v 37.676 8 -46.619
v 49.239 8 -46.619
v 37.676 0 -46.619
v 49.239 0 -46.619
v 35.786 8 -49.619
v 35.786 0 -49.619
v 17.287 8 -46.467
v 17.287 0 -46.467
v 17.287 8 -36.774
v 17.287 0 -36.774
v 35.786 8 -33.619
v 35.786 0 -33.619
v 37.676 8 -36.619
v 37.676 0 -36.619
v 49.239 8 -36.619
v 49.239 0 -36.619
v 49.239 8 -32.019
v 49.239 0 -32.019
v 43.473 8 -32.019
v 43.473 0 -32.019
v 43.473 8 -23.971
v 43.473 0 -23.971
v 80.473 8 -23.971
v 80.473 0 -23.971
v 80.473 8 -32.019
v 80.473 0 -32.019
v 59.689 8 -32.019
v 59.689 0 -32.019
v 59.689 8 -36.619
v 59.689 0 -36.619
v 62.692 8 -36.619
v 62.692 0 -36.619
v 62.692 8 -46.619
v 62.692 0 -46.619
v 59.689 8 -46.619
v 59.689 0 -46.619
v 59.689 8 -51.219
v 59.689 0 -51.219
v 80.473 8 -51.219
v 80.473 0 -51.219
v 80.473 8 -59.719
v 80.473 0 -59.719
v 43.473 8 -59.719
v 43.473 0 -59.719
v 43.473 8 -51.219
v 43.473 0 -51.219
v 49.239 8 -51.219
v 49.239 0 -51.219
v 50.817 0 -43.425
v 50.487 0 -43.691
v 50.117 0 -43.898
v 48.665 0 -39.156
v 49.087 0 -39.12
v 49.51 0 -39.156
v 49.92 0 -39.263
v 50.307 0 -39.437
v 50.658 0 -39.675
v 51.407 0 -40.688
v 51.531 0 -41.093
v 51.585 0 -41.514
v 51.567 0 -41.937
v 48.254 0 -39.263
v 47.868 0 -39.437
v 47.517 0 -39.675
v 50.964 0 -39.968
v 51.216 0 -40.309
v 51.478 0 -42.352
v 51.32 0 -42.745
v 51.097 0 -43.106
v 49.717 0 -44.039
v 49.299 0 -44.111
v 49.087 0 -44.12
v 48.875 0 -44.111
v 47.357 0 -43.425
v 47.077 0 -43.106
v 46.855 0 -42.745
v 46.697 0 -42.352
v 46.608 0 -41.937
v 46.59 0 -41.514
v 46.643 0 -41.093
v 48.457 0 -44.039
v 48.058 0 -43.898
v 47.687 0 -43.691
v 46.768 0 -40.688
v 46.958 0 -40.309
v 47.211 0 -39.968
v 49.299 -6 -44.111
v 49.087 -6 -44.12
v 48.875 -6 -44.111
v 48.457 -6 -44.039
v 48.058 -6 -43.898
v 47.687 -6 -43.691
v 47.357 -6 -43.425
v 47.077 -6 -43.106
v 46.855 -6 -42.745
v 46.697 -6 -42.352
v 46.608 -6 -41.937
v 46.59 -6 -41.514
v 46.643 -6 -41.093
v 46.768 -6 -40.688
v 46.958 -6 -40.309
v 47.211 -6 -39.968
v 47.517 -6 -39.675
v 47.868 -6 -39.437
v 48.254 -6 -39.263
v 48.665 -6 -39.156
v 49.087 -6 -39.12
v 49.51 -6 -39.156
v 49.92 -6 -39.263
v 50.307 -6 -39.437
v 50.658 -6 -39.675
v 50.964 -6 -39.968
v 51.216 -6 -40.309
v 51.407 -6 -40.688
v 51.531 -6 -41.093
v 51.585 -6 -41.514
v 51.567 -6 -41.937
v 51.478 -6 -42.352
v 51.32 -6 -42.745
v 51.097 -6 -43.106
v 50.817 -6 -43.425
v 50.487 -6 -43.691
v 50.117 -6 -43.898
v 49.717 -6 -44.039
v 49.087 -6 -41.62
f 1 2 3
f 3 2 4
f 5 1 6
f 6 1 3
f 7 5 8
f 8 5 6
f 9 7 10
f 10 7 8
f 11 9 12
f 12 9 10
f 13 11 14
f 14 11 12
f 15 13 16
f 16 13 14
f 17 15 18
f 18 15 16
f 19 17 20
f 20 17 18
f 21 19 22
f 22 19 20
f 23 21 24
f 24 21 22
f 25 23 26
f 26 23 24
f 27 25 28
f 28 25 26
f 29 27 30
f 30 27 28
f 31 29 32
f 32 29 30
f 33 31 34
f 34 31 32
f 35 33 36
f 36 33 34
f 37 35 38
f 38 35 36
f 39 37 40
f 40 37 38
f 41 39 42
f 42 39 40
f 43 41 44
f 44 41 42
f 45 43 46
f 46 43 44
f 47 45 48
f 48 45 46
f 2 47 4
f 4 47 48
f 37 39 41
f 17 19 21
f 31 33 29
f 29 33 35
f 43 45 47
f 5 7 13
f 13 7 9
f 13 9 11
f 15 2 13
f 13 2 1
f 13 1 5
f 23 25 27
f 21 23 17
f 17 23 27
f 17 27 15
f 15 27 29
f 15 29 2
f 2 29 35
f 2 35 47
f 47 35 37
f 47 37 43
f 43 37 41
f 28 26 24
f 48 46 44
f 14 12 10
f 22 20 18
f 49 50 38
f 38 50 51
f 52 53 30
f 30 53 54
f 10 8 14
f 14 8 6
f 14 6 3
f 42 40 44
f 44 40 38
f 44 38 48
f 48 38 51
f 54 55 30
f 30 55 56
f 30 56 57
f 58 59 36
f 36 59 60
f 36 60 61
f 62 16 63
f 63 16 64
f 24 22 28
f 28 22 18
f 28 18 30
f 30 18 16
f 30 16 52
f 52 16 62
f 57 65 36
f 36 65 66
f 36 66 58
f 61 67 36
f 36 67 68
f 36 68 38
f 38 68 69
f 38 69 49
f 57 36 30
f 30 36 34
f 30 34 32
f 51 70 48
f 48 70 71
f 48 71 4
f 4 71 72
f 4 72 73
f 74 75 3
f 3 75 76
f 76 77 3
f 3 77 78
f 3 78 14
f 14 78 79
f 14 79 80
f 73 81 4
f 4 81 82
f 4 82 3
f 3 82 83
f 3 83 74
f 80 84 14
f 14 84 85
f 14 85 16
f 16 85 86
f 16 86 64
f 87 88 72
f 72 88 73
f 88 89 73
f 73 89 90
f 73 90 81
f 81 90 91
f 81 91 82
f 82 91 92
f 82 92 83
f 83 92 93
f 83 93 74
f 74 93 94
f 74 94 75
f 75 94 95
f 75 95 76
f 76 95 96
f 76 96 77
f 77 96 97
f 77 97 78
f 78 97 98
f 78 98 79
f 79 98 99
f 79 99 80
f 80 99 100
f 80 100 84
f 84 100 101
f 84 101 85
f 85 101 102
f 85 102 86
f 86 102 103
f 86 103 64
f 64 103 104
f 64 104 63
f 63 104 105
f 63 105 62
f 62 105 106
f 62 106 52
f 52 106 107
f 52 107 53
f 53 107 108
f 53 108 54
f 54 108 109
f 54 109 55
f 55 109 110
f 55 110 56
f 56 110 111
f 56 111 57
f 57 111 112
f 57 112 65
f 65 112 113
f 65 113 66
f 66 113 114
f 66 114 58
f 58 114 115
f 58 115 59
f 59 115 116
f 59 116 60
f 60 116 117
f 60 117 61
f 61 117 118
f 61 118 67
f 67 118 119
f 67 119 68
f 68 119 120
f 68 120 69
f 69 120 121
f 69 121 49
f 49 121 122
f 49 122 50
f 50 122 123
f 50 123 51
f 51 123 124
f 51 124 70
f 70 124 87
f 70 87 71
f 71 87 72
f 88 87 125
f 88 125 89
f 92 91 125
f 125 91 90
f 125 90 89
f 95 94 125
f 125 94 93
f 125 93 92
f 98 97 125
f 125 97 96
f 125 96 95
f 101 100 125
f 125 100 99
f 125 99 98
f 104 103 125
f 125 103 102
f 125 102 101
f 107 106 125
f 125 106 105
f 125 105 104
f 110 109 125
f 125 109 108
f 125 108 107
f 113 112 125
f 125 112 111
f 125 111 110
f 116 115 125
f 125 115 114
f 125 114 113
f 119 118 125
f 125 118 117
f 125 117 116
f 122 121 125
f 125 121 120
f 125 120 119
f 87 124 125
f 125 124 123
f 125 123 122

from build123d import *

# Parameters (mm, degrees)
BOSS_EXTRUDE1_DEPTH = 8
SKETCH2_R           = 2.5
BOSS_EXTRUDE2_DEPTH = 6


with BuildPart() as part:
    # Sketch1 → Boss-Extrude1 (new body)
    with BuildSketch(Plane(origin=(0, 0, 0), x_dir=(1, 0, 0), z_dir=(0, 1, 0))):
        Polygon((35.785540038, 49.619336569), (37.676406325, 46.619336569), (49.238802, 46.619336569), (49.238802, 51.219336569), (43.473118302, 51.219336569), (43.473118302, 59.719336569), (80.473118302, 59.719336569), (80.473118302, 51.219336569), (59.689103703, 51.219336569), (59.689103703, 46.619336569), (62.692063962, 46.619336569), (62.692063962, 36.619336569), (59.689103703, 36.619336569), (59.689103703, 32.019336569), (80.473118302, 32.019336569), (80.473118302, 23.971403073), (43.473118302, 23.971403073), (43.473118302, 32.019336569), (49.238802, 32.019336569), (49.238802, 36.619336569), (37.676406325, 36.619336569), (35.785540038, 33.619336569), (17.28730484, 36.774336569), (17.28730484, 46.466988702), align=None)
    extrude(amount=BOSS_EXTRUDE1_DEPTH)

    # Sketch2 → Boss-Extrude2 (add)
    with BuildSketch(Plane.XZ):
        with Locations((49.08730484, -41.619733902)):
            Circle(SKETCH2_R)
    extrude(amount=BOSS_EXTRUDE2_DEPTH)


solid = part.part
